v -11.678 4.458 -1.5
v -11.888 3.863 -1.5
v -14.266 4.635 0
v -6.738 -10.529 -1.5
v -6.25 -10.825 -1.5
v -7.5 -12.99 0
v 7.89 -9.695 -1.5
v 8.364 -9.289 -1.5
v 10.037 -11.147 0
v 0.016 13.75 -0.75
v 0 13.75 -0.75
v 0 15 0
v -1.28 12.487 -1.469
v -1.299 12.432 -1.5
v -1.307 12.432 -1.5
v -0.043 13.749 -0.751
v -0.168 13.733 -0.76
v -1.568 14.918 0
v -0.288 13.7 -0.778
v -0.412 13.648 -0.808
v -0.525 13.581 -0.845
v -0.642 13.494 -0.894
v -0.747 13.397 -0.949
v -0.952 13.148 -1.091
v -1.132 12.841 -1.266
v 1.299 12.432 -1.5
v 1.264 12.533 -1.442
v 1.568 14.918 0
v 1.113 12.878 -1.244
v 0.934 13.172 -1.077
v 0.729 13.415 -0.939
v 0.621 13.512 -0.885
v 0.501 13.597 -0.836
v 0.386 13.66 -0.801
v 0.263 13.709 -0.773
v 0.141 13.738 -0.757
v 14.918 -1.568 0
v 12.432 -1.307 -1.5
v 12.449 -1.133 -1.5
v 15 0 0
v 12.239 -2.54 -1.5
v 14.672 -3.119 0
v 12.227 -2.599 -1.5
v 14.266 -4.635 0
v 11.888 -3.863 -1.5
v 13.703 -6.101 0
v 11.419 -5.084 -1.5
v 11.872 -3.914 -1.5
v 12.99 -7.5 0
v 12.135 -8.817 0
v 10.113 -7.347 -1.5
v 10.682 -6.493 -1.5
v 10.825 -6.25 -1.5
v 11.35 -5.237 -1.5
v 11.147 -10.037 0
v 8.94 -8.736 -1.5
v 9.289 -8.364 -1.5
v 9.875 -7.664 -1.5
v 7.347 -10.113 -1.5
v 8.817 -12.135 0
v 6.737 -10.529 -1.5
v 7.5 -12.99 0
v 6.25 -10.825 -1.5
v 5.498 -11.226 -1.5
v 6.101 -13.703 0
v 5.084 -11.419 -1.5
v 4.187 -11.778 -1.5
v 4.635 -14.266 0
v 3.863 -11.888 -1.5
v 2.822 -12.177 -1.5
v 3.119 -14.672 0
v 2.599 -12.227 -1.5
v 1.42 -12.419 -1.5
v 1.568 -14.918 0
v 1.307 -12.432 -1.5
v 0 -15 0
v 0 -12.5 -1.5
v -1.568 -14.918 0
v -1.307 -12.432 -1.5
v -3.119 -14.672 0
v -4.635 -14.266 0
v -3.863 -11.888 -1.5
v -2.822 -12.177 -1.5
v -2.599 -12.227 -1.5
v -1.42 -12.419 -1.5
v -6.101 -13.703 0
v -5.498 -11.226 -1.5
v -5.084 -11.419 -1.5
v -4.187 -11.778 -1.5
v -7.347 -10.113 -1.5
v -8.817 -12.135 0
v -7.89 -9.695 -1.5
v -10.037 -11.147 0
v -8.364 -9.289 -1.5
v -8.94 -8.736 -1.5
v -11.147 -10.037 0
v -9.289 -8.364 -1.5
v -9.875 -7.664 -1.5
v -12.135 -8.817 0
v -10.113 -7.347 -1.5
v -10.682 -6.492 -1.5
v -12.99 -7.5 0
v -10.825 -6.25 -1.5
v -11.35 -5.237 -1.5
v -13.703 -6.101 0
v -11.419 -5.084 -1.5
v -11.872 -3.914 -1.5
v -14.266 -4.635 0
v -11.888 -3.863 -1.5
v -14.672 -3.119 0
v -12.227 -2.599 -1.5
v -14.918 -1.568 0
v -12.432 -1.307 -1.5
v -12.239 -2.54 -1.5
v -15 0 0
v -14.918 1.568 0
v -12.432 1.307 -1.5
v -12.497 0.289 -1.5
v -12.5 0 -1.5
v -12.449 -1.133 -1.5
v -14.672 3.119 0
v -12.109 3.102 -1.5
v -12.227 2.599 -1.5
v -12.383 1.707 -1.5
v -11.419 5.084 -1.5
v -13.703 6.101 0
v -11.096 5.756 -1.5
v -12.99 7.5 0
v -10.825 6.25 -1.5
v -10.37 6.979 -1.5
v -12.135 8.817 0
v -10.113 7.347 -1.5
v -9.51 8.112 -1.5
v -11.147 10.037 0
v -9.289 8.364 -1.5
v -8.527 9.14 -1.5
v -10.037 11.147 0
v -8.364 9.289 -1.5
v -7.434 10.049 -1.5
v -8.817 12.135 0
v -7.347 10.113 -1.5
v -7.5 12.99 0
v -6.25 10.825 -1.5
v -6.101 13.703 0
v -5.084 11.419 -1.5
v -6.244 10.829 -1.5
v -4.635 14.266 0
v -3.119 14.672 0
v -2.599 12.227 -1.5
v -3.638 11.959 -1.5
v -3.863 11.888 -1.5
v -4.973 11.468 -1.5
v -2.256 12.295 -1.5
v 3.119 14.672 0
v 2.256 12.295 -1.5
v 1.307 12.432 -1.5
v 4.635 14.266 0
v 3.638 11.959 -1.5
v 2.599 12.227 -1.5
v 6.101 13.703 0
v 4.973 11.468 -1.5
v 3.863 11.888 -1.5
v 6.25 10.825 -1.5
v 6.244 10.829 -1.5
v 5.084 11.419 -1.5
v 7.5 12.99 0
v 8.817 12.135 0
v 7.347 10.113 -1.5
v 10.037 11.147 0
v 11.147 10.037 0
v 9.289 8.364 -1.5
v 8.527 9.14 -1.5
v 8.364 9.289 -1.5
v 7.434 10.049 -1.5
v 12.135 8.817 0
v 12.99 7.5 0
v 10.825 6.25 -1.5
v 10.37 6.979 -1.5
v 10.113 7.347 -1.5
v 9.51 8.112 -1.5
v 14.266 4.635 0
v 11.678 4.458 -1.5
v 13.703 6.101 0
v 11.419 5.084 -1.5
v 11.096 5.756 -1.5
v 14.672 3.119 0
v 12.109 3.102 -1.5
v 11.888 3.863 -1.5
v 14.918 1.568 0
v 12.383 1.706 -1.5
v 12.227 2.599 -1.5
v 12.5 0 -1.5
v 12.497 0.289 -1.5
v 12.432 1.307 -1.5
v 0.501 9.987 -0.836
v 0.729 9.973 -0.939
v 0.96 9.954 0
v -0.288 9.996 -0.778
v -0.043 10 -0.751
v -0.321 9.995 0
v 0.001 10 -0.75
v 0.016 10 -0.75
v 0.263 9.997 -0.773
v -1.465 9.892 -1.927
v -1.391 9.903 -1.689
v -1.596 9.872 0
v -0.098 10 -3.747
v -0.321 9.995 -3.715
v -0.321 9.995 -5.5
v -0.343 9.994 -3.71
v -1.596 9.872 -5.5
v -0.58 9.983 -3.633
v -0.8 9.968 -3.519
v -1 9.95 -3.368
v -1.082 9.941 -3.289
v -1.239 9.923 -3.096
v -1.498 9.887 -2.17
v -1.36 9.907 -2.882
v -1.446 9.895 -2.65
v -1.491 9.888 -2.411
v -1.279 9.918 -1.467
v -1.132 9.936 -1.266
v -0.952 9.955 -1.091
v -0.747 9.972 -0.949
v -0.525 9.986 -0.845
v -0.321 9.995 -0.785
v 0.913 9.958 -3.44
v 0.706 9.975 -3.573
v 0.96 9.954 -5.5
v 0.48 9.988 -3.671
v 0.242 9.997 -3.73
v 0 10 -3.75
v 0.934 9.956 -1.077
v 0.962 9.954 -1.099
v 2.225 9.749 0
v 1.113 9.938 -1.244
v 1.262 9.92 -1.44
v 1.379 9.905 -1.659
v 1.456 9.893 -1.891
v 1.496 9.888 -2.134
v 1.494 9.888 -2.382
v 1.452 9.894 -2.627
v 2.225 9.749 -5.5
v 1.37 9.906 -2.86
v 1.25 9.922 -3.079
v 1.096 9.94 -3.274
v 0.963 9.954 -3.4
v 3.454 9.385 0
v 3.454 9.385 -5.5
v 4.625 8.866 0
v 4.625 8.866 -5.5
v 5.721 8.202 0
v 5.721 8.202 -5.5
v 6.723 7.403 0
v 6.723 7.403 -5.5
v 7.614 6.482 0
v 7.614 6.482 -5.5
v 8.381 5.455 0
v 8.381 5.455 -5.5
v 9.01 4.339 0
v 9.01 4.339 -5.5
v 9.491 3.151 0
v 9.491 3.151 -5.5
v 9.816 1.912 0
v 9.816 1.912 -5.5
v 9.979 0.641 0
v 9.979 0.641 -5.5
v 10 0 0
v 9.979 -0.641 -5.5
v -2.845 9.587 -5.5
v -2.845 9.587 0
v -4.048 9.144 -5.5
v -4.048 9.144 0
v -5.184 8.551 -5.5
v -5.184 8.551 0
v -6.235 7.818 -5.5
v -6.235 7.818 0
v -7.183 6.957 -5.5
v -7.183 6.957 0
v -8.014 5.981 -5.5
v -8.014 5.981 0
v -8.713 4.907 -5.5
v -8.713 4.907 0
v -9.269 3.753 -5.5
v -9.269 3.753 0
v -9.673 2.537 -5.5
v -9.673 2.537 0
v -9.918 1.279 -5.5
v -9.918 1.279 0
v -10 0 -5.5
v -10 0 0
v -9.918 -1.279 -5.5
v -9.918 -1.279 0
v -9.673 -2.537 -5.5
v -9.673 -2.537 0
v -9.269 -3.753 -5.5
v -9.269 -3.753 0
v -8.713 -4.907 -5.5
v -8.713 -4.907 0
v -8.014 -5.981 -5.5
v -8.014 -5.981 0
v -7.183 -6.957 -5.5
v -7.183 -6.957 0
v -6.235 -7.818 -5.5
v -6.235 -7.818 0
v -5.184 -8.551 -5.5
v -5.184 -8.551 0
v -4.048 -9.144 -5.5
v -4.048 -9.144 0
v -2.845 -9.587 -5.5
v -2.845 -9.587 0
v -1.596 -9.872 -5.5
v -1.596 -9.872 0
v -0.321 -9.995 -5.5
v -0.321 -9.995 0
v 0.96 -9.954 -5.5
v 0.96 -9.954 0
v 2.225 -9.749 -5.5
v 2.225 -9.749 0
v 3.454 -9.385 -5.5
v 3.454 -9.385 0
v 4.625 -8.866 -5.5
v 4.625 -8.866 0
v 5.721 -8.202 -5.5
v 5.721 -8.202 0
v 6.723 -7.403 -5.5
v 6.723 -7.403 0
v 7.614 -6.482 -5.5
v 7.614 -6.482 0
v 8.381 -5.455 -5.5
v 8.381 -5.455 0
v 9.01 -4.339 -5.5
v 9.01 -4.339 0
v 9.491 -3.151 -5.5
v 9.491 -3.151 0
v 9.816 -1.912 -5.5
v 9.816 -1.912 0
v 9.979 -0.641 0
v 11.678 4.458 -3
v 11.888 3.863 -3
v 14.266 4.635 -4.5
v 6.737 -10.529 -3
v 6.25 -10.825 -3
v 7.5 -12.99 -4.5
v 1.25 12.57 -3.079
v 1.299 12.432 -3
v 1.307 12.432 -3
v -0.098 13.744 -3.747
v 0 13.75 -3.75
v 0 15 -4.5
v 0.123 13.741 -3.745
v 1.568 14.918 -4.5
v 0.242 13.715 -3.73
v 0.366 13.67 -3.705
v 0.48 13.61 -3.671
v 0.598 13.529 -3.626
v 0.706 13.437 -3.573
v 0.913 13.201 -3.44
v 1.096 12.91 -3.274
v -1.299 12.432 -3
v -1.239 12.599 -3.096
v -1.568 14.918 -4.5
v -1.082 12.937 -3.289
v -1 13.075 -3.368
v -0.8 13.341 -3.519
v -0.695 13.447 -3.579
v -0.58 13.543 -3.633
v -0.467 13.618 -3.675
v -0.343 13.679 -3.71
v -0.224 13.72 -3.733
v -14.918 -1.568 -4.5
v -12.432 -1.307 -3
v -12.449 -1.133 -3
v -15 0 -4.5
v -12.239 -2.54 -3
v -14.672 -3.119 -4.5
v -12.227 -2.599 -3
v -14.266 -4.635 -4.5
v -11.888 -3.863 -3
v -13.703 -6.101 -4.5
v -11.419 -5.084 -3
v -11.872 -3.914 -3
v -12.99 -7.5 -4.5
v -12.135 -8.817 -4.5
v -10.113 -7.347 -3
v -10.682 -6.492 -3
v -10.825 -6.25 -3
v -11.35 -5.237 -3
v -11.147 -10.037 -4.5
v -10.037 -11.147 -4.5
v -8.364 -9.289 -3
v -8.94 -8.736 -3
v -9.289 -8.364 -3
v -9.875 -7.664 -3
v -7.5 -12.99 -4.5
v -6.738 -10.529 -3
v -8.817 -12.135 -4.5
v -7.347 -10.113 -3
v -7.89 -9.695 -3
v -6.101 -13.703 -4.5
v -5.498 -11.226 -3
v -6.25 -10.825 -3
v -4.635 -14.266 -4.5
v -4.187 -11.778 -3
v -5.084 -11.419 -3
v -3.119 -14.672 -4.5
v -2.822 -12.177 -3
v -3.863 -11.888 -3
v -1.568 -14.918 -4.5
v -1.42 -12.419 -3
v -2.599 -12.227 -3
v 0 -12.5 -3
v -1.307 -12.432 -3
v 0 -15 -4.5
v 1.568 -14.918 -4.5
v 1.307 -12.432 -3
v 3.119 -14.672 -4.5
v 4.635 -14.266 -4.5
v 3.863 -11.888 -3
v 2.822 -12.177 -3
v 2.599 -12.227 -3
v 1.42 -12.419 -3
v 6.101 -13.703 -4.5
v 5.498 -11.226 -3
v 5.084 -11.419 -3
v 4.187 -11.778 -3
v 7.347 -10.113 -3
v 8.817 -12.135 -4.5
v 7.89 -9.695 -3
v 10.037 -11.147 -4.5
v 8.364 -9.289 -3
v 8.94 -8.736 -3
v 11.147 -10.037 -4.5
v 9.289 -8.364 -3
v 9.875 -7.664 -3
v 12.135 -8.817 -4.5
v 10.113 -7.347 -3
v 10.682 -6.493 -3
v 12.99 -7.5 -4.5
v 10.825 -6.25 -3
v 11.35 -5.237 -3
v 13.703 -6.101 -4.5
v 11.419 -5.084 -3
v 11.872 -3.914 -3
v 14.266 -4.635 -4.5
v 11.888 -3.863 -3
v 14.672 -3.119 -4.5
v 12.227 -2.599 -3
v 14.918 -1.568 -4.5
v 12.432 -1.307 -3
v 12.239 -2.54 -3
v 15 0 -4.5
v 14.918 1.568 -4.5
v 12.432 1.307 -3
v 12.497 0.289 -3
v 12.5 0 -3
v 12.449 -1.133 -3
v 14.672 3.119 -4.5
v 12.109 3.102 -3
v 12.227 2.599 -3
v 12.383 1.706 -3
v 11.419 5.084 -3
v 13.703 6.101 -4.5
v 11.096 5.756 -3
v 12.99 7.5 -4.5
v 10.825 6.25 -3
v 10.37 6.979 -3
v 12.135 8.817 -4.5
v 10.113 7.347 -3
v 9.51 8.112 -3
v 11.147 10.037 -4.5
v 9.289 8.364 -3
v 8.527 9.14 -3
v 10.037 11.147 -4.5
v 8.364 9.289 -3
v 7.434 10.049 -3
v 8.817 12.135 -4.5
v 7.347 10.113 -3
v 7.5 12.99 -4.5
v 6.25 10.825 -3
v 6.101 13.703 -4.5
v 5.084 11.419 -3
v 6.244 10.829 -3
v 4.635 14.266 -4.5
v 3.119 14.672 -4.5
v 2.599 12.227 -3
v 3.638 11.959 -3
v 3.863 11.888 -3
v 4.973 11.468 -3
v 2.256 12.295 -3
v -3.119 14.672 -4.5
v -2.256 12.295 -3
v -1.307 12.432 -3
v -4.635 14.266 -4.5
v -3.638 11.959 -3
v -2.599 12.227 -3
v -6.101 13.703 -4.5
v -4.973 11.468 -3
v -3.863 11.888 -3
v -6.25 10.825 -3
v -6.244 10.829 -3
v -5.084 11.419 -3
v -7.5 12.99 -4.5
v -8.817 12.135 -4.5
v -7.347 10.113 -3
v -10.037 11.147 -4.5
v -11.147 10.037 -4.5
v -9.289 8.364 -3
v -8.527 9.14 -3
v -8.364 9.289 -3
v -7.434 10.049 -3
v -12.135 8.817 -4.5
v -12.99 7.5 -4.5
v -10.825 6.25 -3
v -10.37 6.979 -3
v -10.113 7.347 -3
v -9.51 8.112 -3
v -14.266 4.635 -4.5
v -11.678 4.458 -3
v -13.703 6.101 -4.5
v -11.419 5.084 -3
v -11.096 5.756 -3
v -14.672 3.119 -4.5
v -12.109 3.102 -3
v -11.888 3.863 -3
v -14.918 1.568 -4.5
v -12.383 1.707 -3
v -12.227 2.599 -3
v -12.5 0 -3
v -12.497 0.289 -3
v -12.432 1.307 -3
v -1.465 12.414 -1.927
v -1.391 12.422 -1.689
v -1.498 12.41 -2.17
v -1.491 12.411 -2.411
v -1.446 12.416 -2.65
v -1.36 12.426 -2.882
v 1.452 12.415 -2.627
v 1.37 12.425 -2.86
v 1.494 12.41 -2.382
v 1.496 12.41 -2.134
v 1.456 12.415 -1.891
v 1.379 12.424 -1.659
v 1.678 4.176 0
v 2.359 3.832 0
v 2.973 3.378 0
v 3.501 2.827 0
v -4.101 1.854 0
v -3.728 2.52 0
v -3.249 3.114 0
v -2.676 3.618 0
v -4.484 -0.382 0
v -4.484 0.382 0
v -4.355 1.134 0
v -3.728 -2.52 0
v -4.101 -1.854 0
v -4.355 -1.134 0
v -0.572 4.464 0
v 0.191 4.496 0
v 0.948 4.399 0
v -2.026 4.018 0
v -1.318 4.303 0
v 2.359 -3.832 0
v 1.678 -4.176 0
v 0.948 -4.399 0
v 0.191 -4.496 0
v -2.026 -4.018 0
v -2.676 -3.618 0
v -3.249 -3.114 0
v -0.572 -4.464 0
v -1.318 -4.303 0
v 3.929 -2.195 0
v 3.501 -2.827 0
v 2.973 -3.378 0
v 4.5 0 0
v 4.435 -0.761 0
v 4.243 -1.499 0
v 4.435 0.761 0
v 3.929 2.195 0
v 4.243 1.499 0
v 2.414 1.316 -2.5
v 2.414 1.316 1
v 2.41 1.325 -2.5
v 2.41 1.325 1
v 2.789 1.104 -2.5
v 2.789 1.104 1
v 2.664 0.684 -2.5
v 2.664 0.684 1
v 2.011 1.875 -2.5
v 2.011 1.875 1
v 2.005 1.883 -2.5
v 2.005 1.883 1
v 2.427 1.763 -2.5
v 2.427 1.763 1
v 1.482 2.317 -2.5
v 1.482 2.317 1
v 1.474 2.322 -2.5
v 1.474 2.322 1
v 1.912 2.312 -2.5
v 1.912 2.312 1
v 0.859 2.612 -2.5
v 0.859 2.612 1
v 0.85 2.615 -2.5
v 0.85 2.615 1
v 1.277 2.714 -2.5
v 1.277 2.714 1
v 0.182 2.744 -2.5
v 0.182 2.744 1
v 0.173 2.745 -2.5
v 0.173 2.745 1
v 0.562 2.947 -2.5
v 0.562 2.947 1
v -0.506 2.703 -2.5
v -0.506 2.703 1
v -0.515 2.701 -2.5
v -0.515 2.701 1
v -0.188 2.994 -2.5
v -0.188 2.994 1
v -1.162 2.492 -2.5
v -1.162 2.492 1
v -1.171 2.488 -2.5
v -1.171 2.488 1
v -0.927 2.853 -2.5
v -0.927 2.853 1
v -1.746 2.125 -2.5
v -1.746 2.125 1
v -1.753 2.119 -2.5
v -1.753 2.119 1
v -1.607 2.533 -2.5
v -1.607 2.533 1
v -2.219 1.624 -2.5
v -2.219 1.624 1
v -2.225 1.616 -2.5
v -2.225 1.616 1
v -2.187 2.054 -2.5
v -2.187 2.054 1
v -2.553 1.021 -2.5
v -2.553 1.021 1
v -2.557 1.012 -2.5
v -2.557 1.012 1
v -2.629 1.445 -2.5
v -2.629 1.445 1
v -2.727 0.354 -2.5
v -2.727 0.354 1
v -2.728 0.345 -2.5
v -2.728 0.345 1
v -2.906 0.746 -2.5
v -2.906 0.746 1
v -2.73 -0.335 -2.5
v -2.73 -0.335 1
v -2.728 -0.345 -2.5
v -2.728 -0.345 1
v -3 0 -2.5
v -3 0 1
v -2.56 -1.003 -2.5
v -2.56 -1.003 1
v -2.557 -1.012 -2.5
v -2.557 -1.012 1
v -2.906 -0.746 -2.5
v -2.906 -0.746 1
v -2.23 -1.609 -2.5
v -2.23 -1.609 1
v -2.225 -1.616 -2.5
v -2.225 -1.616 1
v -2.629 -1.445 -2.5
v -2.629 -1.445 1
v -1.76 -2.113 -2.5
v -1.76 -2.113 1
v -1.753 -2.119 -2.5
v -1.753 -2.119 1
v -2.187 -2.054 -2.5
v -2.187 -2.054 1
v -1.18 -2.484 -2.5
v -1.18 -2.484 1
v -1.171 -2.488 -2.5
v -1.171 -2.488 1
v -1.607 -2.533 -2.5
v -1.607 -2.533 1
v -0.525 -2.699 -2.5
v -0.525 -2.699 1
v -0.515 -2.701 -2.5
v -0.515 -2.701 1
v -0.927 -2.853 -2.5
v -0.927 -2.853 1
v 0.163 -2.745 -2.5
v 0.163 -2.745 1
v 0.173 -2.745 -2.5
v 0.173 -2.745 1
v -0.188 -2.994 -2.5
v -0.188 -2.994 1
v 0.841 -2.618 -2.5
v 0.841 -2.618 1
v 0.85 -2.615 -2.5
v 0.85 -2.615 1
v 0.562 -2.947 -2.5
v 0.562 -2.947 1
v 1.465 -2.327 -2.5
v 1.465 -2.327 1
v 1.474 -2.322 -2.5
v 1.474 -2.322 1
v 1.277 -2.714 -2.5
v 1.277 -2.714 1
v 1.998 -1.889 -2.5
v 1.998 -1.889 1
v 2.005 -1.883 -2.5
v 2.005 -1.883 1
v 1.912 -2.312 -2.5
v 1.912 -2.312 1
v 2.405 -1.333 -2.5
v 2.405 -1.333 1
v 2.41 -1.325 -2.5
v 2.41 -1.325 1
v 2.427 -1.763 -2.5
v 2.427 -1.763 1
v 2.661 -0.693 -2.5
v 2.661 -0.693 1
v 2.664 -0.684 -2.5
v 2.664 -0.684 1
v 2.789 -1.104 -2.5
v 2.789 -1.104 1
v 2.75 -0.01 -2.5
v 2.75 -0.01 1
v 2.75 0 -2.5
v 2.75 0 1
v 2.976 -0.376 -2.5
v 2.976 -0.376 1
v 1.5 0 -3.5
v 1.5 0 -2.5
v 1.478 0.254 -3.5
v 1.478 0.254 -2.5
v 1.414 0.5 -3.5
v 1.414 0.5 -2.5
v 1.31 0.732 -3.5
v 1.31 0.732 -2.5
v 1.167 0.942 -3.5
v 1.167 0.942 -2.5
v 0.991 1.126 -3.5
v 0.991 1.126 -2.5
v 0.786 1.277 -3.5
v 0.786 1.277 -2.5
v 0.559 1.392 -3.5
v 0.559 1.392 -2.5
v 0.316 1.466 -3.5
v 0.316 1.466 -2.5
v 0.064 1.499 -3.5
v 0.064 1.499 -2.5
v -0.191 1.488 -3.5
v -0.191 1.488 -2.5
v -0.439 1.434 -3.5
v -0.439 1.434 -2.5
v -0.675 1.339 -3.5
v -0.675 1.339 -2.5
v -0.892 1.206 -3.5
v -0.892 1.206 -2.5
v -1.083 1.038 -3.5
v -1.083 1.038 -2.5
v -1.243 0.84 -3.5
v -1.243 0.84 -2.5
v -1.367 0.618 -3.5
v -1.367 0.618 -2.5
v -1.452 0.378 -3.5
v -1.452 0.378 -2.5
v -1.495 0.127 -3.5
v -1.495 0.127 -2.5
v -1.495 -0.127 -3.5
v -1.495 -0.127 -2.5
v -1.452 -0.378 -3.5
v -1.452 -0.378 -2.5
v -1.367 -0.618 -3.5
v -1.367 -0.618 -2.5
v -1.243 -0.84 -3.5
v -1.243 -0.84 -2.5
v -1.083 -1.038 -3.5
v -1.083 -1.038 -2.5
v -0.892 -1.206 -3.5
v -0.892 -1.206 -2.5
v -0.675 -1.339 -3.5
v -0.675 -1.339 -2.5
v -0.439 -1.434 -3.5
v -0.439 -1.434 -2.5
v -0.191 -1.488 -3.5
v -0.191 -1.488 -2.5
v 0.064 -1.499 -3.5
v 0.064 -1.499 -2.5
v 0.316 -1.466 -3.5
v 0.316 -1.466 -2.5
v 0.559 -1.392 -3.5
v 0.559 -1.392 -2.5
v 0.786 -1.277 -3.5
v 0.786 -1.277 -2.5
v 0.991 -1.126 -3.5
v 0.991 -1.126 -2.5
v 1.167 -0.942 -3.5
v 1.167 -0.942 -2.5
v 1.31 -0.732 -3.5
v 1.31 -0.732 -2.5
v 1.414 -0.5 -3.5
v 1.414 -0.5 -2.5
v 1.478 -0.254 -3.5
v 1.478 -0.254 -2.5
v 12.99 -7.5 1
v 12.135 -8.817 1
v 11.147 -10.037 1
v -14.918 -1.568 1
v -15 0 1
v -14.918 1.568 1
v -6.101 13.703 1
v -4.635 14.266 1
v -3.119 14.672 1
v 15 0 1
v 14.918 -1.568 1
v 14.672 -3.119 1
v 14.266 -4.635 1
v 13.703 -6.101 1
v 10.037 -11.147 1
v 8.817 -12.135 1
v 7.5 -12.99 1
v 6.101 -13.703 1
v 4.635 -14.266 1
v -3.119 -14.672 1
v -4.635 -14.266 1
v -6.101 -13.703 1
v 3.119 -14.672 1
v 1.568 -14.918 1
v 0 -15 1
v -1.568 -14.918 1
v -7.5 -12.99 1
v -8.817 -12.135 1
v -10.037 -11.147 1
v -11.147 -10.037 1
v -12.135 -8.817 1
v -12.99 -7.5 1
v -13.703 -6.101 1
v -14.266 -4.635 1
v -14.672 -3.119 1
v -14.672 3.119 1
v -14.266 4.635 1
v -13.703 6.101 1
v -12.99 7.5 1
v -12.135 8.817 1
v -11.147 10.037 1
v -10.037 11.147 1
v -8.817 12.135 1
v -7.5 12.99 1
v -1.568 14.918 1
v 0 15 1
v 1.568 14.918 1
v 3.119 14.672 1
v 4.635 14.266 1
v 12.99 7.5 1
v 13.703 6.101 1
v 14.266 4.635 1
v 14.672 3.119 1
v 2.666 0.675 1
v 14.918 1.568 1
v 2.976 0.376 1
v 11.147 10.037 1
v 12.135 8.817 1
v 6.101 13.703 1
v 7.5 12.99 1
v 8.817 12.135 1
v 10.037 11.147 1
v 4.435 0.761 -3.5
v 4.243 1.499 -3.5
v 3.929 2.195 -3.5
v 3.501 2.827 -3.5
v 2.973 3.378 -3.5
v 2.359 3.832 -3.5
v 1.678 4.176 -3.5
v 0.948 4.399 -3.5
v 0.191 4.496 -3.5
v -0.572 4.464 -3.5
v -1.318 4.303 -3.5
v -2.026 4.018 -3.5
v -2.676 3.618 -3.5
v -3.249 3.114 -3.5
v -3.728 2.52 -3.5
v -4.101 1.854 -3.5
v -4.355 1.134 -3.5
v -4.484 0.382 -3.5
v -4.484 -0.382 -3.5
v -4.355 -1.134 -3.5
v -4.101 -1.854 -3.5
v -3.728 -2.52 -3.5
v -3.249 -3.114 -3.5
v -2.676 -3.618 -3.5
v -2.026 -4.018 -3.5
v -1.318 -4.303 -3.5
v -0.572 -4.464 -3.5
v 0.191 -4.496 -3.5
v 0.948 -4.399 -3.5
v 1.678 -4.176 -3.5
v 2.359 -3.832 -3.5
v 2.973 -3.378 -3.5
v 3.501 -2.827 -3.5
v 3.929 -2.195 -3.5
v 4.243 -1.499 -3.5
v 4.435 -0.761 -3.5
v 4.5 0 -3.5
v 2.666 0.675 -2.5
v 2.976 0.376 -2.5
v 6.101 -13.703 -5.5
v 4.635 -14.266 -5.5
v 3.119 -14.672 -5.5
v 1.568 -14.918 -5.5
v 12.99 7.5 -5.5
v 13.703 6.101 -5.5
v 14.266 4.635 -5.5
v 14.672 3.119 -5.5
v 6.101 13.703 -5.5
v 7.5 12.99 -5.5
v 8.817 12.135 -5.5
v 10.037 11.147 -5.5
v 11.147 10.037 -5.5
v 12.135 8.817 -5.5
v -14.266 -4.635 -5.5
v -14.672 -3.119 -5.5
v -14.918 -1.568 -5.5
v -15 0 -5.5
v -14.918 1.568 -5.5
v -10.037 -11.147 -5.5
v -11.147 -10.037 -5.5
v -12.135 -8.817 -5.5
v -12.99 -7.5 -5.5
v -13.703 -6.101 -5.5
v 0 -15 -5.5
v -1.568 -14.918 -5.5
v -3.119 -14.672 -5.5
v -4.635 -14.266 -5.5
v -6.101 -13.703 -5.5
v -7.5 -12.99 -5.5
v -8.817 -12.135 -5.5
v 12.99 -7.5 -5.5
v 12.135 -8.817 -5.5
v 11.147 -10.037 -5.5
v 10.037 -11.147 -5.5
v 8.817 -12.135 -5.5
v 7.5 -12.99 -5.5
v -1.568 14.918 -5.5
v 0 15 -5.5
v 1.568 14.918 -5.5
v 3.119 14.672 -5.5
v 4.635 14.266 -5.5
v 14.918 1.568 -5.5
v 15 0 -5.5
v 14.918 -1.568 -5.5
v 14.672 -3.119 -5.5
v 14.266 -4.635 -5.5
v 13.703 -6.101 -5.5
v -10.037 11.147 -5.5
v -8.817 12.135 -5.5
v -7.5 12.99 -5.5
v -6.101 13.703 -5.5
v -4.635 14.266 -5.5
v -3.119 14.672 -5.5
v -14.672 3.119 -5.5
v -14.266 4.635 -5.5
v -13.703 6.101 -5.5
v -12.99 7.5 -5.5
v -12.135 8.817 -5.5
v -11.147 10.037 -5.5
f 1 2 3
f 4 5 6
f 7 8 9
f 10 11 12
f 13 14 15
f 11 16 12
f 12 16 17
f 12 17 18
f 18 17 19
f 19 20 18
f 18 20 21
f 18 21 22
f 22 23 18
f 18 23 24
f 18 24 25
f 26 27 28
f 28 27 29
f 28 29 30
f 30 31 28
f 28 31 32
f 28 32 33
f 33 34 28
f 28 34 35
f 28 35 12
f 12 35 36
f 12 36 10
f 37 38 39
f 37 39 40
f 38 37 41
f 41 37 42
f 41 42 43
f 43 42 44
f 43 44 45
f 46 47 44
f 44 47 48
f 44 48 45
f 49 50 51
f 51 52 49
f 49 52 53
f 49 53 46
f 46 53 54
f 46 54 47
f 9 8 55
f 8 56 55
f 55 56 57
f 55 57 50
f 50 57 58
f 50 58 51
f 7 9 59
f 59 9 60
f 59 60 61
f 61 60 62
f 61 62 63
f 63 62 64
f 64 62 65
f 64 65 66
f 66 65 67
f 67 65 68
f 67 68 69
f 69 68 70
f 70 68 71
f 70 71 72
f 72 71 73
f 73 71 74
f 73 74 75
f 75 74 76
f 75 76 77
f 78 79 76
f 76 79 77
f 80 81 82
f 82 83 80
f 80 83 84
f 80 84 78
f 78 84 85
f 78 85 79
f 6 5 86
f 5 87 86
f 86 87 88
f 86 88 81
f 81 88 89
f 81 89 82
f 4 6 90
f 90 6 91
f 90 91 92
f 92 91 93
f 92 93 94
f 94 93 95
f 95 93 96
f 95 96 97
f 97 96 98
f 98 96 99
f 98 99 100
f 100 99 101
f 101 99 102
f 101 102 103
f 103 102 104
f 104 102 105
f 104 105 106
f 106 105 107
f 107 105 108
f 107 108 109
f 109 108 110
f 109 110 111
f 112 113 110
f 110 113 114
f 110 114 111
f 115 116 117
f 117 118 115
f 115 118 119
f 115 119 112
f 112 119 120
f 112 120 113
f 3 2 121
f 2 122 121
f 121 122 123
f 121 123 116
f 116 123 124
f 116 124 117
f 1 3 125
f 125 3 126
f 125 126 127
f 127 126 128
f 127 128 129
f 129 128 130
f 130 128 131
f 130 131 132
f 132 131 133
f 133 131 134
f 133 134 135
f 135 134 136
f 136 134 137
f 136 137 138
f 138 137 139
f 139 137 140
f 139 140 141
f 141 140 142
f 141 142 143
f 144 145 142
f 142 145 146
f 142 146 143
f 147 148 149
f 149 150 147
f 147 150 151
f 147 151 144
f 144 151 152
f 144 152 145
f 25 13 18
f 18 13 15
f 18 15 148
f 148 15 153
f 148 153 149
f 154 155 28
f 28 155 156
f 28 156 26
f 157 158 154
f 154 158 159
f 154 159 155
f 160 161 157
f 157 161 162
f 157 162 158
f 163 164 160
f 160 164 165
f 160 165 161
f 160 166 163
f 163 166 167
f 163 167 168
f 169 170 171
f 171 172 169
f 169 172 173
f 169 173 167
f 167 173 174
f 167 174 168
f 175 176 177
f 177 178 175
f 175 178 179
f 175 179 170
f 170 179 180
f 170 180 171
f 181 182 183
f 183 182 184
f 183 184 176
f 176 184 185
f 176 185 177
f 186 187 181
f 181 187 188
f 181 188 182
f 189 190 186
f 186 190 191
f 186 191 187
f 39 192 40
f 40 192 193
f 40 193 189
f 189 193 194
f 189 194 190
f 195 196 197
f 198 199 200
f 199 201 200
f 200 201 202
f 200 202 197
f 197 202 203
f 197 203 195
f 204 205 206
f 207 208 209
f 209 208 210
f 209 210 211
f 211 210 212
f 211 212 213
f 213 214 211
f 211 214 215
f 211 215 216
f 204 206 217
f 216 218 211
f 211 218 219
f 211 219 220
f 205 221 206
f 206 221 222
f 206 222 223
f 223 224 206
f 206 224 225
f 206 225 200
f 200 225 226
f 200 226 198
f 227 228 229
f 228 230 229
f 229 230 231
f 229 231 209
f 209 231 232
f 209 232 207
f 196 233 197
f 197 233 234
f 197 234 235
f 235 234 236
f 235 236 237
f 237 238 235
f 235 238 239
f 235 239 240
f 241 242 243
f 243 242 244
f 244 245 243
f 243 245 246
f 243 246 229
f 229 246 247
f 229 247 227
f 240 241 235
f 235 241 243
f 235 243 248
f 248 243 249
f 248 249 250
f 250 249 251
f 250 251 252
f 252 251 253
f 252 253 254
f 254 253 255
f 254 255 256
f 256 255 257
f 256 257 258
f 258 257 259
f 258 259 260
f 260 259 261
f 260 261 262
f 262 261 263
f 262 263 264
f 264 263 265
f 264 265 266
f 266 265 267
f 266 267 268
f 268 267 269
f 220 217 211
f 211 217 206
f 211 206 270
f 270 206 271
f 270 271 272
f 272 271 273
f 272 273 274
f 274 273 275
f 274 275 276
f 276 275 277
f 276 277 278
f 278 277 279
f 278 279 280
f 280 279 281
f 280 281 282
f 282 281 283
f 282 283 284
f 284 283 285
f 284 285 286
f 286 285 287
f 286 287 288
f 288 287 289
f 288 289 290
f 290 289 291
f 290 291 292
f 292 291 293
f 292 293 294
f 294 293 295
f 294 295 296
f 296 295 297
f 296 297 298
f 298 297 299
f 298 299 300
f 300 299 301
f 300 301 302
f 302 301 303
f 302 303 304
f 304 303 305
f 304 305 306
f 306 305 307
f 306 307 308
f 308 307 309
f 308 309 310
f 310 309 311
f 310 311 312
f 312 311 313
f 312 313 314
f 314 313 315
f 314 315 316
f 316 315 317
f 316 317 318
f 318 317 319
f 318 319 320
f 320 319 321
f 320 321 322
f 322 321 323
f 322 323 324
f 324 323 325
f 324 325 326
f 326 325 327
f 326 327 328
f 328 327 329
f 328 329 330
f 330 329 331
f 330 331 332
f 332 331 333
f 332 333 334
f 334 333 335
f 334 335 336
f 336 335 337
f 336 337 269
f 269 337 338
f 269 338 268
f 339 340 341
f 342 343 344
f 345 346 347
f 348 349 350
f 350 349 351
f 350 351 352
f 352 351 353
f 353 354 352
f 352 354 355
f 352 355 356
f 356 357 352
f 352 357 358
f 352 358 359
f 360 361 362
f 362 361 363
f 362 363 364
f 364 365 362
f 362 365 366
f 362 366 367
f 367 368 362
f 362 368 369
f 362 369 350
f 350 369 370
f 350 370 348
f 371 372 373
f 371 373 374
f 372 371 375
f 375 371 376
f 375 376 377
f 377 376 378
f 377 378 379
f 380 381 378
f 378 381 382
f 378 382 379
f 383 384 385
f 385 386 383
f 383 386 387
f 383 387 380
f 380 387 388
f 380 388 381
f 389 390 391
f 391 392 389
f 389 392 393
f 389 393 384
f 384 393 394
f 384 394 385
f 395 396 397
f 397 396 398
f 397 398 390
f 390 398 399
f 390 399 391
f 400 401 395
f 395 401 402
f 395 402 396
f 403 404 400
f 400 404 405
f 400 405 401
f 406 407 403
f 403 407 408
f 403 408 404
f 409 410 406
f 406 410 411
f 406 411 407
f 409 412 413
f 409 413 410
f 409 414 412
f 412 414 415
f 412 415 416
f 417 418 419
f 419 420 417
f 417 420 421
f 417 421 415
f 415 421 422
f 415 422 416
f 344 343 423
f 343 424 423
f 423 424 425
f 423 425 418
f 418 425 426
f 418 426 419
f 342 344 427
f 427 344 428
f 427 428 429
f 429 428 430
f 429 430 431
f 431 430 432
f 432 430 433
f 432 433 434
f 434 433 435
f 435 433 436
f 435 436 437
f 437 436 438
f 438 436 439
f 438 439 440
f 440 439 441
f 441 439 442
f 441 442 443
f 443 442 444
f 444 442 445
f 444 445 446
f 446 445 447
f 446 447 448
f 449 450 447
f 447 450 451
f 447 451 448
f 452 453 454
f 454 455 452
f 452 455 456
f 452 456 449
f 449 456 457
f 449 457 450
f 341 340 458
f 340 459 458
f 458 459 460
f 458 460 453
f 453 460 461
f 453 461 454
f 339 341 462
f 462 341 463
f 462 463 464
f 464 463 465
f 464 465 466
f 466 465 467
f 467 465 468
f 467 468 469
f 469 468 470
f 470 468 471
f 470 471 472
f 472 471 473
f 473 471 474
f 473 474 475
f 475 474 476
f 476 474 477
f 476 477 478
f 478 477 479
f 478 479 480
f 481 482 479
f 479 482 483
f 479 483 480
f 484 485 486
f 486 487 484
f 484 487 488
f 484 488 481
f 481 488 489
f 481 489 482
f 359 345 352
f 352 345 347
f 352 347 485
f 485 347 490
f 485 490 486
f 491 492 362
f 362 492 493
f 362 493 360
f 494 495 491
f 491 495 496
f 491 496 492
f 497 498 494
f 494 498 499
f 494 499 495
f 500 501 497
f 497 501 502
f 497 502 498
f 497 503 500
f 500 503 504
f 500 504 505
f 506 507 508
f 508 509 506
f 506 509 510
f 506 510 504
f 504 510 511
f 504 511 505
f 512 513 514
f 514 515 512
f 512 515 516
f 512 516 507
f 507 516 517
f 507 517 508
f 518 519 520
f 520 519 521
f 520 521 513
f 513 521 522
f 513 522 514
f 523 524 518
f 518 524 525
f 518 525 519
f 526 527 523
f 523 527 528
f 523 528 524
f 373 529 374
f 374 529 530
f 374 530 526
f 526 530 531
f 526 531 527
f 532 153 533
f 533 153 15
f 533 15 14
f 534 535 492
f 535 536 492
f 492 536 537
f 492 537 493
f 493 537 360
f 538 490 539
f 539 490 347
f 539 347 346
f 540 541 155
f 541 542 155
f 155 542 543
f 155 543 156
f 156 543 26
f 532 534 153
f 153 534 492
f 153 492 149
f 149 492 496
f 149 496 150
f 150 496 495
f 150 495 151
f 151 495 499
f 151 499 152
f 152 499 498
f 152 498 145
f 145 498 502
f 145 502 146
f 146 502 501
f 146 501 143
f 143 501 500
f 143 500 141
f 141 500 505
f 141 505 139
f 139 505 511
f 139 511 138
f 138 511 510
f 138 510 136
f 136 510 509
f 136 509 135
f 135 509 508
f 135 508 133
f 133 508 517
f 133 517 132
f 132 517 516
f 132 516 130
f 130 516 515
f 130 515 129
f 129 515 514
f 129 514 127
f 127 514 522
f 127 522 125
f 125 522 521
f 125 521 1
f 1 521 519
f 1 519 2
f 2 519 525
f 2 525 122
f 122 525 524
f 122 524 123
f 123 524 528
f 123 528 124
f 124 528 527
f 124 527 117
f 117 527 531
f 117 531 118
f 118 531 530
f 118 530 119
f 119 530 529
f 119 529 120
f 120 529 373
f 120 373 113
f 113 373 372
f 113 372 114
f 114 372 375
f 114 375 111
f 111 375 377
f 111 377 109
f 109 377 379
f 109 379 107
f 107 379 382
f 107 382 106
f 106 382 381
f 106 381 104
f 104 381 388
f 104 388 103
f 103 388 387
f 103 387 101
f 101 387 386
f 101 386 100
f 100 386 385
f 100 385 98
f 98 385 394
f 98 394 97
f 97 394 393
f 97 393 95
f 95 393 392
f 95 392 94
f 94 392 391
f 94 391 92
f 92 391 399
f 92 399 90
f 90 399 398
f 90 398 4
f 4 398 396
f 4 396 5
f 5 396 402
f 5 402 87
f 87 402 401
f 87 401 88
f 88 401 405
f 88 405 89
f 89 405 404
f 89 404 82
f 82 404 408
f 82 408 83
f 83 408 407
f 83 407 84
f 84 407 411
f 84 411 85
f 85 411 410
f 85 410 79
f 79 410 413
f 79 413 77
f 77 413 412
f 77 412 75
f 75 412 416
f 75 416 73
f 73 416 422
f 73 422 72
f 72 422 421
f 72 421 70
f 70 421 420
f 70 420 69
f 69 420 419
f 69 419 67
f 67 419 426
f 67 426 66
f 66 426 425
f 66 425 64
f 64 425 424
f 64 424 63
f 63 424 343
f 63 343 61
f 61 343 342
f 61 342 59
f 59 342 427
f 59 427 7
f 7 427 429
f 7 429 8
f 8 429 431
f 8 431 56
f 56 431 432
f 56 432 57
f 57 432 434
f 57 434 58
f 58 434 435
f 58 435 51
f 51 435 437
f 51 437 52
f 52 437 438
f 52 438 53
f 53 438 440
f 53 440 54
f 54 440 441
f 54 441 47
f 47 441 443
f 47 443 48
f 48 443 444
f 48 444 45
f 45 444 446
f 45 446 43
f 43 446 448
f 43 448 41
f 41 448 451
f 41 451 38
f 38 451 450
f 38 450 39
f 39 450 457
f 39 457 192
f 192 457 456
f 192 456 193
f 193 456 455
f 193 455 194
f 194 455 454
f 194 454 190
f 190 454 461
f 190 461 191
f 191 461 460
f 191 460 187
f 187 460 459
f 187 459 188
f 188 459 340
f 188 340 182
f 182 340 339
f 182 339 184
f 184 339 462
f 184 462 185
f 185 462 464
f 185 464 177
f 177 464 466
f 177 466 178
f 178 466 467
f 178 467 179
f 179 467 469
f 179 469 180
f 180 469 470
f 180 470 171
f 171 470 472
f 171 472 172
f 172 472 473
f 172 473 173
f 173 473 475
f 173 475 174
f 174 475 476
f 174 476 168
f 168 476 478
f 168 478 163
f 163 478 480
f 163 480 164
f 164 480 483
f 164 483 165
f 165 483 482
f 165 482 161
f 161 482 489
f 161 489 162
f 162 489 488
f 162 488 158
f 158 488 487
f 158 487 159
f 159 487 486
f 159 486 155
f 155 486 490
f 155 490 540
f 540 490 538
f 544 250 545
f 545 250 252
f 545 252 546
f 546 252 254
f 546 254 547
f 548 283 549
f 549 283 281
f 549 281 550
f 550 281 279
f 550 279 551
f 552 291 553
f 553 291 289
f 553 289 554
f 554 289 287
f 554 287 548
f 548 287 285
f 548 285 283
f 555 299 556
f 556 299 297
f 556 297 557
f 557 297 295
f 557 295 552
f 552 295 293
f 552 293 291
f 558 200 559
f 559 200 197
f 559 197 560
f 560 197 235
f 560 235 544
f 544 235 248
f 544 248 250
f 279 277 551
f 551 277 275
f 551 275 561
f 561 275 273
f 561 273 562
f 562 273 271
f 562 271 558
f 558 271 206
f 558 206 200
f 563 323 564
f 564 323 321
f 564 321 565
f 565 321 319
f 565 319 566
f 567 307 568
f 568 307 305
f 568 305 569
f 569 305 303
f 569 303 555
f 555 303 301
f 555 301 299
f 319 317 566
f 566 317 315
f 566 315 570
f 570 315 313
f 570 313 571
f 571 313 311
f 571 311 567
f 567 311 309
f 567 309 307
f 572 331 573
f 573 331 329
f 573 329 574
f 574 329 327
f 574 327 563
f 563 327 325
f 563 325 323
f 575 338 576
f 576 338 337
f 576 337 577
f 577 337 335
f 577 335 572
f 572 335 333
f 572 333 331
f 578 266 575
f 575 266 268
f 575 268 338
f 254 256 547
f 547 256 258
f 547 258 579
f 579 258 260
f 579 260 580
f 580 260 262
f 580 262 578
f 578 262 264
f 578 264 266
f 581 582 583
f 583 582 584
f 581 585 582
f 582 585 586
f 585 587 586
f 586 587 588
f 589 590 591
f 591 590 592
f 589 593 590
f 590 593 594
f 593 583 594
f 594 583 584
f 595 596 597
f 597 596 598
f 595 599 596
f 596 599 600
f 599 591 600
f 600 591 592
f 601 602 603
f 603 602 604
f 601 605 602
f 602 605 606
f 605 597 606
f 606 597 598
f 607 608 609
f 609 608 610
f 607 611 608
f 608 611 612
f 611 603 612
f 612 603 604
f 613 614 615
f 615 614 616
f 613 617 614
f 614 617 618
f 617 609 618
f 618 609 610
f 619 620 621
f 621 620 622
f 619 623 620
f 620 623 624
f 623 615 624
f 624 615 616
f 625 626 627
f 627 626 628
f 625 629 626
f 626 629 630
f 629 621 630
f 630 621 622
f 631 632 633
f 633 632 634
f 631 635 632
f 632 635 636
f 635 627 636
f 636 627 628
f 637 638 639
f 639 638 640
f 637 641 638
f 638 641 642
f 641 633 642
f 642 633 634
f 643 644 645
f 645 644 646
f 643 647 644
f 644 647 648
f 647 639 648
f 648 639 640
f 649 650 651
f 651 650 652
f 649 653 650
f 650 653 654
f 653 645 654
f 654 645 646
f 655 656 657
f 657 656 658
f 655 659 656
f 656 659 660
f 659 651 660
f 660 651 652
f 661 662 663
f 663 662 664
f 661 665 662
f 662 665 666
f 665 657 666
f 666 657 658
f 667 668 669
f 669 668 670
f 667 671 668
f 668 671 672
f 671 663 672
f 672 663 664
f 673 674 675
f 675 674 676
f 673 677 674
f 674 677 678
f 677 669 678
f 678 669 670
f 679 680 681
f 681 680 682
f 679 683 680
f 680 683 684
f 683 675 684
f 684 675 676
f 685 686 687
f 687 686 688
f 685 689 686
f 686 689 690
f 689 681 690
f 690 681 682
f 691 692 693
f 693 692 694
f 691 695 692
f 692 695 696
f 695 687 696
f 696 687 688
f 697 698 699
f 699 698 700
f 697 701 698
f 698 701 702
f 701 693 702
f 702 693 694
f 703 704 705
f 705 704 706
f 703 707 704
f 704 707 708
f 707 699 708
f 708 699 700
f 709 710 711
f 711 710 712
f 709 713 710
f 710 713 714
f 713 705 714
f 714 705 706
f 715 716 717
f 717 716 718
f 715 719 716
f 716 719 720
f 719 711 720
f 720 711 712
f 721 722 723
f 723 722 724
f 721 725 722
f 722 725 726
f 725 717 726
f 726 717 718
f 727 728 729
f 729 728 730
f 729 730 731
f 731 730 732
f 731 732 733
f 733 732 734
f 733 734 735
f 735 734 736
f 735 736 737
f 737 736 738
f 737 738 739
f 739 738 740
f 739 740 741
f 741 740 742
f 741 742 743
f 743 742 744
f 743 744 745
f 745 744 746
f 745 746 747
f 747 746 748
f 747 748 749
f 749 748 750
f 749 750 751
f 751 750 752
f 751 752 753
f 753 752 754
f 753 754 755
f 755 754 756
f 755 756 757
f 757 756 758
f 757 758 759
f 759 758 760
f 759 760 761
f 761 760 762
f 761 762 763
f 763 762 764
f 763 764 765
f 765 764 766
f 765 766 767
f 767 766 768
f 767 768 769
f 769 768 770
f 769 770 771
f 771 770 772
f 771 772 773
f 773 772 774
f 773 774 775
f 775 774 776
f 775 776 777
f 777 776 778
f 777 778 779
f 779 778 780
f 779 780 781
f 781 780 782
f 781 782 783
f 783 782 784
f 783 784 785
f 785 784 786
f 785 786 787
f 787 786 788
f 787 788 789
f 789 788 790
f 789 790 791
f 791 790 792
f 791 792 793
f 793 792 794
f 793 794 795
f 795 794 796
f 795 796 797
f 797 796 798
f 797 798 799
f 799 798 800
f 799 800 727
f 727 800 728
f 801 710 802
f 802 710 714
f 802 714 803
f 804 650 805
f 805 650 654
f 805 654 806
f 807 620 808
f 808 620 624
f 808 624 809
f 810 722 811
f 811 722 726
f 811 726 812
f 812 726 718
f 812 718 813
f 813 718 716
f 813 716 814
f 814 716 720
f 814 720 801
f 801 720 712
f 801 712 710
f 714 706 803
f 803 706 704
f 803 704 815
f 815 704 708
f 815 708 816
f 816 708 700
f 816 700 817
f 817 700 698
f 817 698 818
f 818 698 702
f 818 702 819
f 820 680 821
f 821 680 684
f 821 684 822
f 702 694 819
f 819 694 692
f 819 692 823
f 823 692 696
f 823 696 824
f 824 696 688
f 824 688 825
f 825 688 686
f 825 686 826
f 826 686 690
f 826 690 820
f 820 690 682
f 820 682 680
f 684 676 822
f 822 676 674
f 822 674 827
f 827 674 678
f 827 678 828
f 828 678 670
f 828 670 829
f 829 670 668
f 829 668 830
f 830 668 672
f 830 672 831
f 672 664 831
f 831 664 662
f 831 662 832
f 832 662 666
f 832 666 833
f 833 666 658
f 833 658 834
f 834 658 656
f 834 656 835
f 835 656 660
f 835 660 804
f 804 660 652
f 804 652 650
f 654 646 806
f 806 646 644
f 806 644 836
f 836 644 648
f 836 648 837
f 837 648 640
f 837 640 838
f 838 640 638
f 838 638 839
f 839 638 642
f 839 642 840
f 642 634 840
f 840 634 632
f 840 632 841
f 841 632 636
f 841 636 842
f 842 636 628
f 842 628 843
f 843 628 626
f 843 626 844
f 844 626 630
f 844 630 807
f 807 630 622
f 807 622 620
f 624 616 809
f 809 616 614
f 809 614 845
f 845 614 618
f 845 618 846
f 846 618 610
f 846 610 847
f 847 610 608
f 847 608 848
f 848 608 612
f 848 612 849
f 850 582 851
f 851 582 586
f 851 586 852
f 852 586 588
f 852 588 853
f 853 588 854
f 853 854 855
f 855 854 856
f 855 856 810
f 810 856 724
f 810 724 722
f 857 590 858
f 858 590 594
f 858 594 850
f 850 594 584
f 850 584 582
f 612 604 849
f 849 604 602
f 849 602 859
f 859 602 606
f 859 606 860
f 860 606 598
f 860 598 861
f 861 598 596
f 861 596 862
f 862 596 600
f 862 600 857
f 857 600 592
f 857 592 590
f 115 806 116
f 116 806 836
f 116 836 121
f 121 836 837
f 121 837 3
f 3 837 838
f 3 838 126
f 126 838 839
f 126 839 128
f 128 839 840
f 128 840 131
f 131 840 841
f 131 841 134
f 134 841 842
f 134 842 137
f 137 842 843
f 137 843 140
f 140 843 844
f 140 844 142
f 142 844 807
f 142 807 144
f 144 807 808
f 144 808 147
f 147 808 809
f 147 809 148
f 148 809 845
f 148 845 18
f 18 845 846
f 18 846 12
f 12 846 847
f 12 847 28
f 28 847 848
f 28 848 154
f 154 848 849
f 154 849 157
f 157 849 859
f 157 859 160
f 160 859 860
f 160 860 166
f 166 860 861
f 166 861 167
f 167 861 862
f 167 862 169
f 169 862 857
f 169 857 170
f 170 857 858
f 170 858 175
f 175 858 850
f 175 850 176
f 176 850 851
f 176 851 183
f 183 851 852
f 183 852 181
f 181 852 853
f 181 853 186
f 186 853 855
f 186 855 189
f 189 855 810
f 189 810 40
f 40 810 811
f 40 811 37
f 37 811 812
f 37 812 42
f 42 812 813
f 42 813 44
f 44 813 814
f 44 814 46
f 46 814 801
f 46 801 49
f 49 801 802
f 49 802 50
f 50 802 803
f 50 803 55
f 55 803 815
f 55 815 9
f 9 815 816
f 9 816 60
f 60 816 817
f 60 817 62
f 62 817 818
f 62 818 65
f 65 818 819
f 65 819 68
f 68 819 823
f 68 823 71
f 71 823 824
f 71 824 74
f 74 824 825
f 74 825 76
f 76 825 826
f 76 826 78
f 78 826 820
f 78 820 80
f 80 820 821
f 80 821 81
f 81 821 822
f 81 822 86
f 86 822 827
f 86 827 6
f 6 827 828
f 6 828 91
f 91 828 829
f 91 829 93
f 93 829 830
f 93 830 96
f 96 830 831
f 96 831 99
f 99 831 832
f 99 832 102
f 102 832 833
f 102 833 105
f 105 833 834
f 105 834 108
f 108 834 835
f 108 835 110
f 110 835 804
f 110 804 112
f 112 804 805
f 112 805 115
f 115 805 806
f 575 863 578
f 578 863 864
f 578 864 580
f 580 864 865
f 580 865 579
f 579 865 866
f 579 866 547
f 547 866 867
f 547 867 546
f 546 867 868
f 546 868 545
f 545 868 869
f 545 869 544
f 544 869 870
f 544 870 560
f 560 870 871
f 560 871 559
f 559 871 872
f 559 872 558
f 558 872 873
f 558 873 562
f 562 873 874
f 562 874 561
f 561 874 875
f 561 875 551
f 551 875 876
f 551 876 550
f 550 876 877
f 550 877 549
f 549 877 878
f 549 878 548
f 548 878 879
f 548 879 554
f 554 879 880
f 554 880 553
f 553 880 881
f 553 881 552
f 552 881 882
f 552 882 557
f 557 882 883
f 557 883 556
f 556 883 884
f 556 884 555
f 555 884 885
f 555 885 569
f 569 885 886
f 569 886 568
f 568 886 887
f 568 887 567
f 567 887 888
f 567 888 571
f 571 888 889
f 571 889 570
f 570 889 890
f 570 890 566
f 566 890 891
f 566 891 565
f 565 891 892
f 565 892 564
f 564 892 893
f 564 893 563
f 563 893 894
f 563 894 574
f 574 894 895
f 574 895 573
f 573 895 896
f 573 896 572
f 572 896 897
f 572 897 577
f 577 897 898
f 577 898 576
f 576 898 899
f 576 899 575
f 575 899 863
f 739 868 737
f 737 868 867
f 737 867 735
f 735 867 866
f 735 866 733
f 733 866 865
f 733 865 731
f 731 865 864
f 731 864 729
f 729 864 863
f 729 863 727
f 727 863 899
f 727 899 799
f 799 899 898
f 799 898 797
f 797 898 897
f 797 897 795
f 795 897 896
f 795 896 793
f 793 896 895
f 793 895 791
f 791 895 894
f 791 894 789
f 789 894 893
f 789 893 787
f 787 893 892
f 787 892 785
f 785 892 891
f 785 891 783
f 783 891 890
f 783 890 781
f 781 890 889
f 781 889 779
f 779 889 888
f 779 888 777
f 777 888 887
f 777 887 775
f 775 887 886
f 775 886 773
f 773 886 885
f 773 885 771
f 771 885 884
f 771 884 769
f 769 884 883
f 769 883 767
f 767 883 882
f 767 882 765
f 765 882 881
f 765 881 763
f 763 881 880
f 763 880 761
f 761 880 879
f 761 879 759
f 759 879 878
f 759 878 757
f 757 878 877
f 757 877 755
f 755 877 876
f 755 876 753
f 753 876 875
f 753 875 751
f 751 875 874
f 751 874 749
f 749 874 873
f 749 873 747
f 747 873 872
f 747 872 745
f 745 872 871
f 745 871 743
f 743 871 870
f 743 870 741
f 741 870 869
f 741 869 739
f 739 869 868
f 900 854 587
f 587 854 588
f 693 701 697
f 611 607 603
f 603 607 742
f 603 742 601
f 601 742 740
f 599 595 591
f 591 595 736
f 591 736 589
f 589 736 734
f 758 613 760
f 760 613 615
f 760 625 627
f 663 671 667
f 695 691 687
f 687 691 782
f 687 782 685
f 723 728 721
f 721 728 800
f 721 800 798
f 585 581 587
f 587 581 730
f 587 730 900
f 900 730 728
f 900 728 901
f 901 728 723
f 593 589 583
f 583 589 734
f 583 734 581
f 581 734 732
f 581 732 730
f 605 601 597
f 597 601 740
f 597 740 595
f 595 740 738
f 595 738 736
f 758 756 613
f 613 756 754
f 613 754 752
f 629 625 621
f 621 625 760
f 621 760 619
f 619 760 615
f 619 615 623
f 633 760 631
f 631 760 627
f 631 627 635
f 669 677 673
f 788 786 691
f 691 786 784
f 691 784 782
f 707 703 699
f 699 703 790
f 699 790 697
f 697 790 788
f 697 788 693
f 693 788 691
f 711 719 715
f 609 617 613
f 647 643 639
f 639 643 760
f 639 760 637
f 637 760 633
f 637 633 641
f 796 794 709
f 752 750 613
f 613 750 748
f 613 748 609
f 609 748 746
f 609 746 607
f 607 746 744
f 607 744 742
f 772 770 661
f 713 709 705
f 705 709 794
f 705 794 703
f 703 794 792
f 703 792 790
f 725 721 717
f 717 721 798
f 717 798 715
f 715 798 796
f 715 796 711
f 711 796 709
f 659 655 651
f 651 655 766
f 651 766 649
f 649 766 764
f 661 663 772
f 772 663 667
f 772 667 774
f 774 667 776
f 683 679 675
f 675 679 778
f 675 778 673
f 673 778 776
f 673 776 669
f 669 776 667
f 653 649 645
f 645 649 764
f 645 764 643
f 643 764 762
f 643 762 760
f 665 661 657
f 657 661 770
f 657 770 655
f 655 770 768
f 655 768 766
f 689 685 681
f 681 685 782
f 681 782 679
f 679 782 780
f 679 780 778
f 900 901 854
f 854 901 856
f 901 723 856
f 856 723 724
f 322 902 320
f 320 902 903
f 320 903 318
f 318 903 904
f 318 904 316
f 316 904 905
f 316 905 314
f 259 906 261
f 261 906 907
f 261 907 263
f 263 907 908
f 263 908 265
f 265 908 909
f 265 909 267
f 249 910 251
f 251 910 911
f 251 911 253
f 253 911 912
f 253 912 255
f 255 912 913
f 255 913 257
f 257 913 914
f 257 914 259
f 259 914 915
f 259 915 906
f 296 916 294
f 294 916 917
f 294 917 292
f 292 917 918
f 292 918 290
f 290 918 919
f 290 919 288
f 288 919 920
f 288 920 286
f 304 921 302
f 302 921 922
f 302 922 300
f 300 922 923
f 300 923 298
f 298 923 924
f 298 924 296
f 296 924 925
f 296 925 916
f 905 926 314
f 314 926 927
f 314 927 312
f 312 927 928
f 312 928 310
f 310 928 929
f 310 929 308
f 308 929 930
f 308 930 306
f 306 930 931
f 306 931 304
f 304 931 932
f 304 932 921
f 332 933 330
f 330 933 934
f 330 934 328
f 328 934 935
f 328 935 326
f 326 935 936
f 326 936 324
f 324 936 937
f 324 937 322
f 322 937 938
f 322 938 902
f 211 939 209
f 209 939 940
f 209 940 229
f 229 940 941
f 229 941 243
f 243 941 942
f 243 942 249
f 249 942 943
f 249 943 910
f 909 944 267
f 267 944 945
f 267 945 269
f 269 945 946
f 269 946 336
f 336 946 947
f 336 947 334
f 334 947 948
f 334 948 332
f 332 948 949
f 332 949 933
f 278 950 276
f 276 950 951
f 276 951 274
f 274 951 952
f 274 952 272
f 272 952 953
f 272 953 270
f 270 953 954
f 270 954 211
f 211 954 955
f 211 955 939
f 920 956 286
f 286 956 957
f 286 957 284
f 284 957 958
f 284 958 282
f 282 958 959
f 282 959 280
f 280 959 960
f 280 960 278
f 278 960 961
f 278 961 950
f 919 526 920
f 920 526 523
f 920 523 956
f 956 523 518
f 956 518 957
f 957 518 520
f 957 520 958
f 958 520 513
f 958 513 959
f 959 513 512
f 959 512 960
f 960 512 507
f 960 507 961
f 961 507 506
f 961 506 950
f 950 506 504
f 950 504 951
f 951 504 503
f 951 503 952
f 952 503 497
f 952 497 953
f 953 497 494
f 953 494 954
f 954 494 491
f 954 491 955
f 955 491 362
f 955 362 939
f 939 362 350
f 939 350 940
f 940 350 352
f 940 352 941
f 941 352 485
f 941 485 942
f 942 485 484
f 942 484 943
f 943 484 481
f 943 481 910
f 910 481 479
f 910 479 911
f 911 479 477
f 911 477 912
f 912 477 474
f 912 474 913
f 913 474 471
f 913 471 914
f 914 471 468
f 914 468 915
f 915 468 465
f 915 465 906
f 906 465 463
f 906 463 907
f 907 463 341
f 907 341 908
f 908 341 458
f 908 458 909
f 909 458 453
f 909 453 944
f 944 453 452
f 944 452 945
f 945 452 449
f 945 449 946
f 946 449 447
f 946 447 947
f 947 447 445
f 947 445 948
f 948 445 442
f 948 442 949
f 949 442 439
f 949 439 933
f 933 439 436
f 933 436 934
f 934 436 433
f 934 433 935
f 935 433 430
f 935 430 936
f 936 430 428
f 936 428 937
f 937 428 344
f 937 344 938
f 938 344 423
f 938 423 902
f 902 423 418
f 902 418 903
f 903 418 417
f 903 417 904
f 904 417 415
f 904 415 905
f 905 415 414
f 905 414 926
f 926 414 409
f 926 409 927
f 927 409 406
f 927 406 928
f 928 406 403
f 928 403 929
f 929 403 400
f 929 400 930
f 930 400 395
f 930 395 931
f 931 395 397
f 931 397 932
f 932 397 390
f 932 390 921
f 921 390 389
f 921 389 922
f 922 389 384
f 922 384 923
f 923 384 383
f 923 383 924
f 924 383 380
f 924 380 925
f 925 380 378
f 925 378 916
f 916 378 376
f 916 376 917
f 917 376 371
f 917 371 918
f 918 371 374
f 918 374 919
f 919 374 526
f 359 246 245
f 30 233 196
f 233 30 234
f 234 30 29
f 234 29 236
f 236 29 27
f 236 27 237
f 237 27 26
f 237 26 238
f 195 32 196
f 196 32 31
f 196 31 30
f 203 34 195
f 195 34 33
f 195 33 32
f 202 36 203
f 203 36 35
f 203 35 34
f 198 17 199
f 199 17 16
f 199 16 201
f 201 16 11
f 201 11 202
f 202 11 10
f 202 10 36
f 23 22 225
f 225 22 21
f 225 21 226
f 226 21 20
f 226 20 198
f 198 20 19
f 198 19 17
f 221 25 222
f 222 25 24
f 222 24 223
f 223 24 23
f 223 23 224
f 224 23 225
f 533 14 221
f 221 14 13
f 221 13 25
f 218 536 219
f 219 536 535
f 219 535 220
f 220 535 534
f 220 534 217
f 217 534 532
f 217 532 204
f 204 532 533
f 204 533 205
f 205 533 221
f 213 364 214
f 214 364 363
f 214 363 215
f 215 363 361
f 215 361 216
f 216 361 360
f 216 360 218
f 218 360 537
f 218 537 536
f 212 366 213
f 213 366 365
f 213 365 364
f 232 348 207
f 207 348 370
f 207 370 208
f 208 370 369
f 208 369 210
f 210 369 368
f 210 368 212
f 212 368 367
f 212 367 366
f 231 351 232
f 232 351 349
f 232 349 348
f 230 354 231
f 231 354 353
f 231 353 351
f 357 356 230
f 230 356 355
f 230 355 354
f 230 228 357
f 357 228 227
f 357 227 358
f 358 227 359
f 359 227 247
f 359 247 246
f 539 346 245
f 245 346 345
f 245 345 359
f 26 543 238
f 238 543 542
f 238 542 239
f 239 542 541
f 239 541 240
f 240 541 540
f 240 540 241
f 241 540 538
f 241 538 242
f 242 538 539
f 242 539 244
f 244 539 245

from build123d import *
from OCP.BRepAlgoAPI import BRepAlgoAPI_Cut
from OCP.TopTools import TopTools_ListOfShape

# Parameters (mm, degrees)
SKETCH1_R           = 15
SKETCH1_R_2         = 4.5
BOSS_EXTRUDE1_DEPTH = 1
BOSS_EXTRUDE2_START = -3.5
SKETCH1_2_R         = 4.5
BOSS_EXTRUDE2_DEPTH = 4.5
SKETCH2_R           = 1.5
CUT_EXTRUDE1_DEPTH  = 4.5
CUT_EXTRUDE2_START  = -4.5
SKETCH3_R           = 2.75
CUT_EXTRUDE2_DEPTH  = 3.5
CUT_EXTRUDE3_START  = -4.5
CUT_EXTRUDE3_DEPTH  = 3.5
CIRPATTERN1_COUNT   = 25
CUT_EXTRUDE4_START  = 9.886861
SKETCH6_R           = 1.5
CUT_EXTRUDE4_DEPTH  = 3.863123


with BuildPart() as part:
    # Sketch1 → Boss-Extrude1 (new body)
    with BuildSketch(Plane.XY):
        Circle(SKETCH1_R)
        Circle(SKETCH1_R_2, mode=Mode.SUBTRACT)
    extrude(amount=BOSS_EXTRUDE1_DEPTH)

    # Sketch1<2> → Boss-Extrude2 (add)
    with BuildSketch(Plane.XY.offset(BOSS_EXTRUDE2_START)):
        Circle(SKETCH1_2_R)
    extrude(amount=BOSS_EXTRUDE2_DEPTH)

    # Sketch2 → Cut-Extrude1 (cut)
    with BuildSketch(Plane(origin=(0, 0, 0), x_dir=(-1, 0, 0), z_dir=(0, 0, -1))):
        with Locations(Location((0, 0, 0), (0, 0, 180))):
            Circle(SKETCH2_R)
    extrude(amount=CUT_EXTRUDE1_DEPTH, mode=Mode.SUBTRACT)

    # Sketch3 → Cut-Extrude2 (cut)
    with BuildSketch(Plane(origin=(0, 0, -3.5), x_dir=(-1, 0, 0), z_dir=(0, 0, -1)).offset(CUT_EXTRUDE2_START)):
        with Locations(Location((0, 0, 0), (0, 0, 180))):
            Circle(SKETCH3_R)
    extrude(amount=CUT_EXTRUDE2_DEPTH, mode=Mode.SUBTRACT)

    # Sketch4 → Cut-Extrude3 (cut)
    with BuildSketch(Plane(origin=(0, 0, -3.5), x_dir=(-1, 0, 0), z_dir=(0, 0, -1)).offset(CUT_EXTRUDE3_START)):
        with BuildLine():
            Line((-2.665974712, 0.674595311), (-2.976344104, 0.375999701))
            Line((-2.976344104, 0.375999701), (-2.728315429, 0.344666392))
            ThreePointArc((-2.728315429, 0.344666392), (-2.70218519, 0.510583192), (-2.665974712, 0.674595311))
        make_face()
        with BuildLine():
            Line((-2.976344104, 0.375999701), (-2.75, 0))
            ThreePointArc((-2.75, 0), (-2.744573503, 0.172673929), (-2.728315429, 0.344666392))
            Line((-2.728315429, 0.344666392), (-2.976344104, 0.375999701))
        make_face()
    cut_extrude3 = extrude(amount=CUT_EXTRUDE3_DEPTH, mode=Mode.SUBTRACT)

    # CirPattern1: Cut-Extrude3 ×25 about axis
    cirpattern1_axis = Axis((0, 0, 0), (0, 0, 1))
    for i in range(1, CIRPATTERN1_COUNT):
        add(cut_extrude3.rotate(cirpattern1_axis, i * 360 / CIRPATTERN1_COUNT), mode=Mode.SUBTRACT)

    # Sketch5 → Revolve1 (revolve)
    with BuildSketch(Plane(origin=(0, 0, 0), x_dir=(1, 0, 0), z_dir=(0, 1, 0))):
        Polygon((-15, 0), (-12.5, 1.5), (-12.5, 3), (-15, 4.5), (-15, 5.5), (-10, 5.5), (-10, 0), align=None)
    revolve(axis=Axis((0, 0, -2.5), (0, 0, 1)))


with BuildPart() as cut_extrude4_tool:
    # Sketch6 → Cut-Extrude4 (new body)
    with BuildSketch(Plane(origin=(0, 0, 0), x_dir=(1, 0, 0), z_dir=(0, 1, 0)).offset(CUT_EXTRUDE4_START)):
        with Locations((0, 2.25)):
            Circle(SKETCH6_R)
    extrude(amount=CUT_EXTRUDE4_DEPTH)


with BuildPart() as part_1:
    add(part.part)

    # Cut-Extrude4: cut by cut_extrude4_tool, with a tolerance
    cut_extrude4_stock = TopTools_ListOfShape()
    cut_extrude4_stock.Append(part_1.part.wrapped)
    cut_extrude4_tools = TopTools_ListOfShape()
    cut_extrude4_tools.Append(cut_extrude4_tool.part.wrapped)
    cut_extrude4_cut = BRepAlgoAPI_Cut()
    cut_extrude4_cut.SetArguments(cut_extrude4_stock)
    cut_extrude4_cut.SetTools(cut_extrude4_tools)
    cut_extrude4_cut.SetFuzzyValue(0.00001)
    cut_extrude4_cut.Build()
    add(Compound.cast(cut_extrude4_cut.Shape()).solids(), mode=Mode.REPLACE)


solid = part_1.part
